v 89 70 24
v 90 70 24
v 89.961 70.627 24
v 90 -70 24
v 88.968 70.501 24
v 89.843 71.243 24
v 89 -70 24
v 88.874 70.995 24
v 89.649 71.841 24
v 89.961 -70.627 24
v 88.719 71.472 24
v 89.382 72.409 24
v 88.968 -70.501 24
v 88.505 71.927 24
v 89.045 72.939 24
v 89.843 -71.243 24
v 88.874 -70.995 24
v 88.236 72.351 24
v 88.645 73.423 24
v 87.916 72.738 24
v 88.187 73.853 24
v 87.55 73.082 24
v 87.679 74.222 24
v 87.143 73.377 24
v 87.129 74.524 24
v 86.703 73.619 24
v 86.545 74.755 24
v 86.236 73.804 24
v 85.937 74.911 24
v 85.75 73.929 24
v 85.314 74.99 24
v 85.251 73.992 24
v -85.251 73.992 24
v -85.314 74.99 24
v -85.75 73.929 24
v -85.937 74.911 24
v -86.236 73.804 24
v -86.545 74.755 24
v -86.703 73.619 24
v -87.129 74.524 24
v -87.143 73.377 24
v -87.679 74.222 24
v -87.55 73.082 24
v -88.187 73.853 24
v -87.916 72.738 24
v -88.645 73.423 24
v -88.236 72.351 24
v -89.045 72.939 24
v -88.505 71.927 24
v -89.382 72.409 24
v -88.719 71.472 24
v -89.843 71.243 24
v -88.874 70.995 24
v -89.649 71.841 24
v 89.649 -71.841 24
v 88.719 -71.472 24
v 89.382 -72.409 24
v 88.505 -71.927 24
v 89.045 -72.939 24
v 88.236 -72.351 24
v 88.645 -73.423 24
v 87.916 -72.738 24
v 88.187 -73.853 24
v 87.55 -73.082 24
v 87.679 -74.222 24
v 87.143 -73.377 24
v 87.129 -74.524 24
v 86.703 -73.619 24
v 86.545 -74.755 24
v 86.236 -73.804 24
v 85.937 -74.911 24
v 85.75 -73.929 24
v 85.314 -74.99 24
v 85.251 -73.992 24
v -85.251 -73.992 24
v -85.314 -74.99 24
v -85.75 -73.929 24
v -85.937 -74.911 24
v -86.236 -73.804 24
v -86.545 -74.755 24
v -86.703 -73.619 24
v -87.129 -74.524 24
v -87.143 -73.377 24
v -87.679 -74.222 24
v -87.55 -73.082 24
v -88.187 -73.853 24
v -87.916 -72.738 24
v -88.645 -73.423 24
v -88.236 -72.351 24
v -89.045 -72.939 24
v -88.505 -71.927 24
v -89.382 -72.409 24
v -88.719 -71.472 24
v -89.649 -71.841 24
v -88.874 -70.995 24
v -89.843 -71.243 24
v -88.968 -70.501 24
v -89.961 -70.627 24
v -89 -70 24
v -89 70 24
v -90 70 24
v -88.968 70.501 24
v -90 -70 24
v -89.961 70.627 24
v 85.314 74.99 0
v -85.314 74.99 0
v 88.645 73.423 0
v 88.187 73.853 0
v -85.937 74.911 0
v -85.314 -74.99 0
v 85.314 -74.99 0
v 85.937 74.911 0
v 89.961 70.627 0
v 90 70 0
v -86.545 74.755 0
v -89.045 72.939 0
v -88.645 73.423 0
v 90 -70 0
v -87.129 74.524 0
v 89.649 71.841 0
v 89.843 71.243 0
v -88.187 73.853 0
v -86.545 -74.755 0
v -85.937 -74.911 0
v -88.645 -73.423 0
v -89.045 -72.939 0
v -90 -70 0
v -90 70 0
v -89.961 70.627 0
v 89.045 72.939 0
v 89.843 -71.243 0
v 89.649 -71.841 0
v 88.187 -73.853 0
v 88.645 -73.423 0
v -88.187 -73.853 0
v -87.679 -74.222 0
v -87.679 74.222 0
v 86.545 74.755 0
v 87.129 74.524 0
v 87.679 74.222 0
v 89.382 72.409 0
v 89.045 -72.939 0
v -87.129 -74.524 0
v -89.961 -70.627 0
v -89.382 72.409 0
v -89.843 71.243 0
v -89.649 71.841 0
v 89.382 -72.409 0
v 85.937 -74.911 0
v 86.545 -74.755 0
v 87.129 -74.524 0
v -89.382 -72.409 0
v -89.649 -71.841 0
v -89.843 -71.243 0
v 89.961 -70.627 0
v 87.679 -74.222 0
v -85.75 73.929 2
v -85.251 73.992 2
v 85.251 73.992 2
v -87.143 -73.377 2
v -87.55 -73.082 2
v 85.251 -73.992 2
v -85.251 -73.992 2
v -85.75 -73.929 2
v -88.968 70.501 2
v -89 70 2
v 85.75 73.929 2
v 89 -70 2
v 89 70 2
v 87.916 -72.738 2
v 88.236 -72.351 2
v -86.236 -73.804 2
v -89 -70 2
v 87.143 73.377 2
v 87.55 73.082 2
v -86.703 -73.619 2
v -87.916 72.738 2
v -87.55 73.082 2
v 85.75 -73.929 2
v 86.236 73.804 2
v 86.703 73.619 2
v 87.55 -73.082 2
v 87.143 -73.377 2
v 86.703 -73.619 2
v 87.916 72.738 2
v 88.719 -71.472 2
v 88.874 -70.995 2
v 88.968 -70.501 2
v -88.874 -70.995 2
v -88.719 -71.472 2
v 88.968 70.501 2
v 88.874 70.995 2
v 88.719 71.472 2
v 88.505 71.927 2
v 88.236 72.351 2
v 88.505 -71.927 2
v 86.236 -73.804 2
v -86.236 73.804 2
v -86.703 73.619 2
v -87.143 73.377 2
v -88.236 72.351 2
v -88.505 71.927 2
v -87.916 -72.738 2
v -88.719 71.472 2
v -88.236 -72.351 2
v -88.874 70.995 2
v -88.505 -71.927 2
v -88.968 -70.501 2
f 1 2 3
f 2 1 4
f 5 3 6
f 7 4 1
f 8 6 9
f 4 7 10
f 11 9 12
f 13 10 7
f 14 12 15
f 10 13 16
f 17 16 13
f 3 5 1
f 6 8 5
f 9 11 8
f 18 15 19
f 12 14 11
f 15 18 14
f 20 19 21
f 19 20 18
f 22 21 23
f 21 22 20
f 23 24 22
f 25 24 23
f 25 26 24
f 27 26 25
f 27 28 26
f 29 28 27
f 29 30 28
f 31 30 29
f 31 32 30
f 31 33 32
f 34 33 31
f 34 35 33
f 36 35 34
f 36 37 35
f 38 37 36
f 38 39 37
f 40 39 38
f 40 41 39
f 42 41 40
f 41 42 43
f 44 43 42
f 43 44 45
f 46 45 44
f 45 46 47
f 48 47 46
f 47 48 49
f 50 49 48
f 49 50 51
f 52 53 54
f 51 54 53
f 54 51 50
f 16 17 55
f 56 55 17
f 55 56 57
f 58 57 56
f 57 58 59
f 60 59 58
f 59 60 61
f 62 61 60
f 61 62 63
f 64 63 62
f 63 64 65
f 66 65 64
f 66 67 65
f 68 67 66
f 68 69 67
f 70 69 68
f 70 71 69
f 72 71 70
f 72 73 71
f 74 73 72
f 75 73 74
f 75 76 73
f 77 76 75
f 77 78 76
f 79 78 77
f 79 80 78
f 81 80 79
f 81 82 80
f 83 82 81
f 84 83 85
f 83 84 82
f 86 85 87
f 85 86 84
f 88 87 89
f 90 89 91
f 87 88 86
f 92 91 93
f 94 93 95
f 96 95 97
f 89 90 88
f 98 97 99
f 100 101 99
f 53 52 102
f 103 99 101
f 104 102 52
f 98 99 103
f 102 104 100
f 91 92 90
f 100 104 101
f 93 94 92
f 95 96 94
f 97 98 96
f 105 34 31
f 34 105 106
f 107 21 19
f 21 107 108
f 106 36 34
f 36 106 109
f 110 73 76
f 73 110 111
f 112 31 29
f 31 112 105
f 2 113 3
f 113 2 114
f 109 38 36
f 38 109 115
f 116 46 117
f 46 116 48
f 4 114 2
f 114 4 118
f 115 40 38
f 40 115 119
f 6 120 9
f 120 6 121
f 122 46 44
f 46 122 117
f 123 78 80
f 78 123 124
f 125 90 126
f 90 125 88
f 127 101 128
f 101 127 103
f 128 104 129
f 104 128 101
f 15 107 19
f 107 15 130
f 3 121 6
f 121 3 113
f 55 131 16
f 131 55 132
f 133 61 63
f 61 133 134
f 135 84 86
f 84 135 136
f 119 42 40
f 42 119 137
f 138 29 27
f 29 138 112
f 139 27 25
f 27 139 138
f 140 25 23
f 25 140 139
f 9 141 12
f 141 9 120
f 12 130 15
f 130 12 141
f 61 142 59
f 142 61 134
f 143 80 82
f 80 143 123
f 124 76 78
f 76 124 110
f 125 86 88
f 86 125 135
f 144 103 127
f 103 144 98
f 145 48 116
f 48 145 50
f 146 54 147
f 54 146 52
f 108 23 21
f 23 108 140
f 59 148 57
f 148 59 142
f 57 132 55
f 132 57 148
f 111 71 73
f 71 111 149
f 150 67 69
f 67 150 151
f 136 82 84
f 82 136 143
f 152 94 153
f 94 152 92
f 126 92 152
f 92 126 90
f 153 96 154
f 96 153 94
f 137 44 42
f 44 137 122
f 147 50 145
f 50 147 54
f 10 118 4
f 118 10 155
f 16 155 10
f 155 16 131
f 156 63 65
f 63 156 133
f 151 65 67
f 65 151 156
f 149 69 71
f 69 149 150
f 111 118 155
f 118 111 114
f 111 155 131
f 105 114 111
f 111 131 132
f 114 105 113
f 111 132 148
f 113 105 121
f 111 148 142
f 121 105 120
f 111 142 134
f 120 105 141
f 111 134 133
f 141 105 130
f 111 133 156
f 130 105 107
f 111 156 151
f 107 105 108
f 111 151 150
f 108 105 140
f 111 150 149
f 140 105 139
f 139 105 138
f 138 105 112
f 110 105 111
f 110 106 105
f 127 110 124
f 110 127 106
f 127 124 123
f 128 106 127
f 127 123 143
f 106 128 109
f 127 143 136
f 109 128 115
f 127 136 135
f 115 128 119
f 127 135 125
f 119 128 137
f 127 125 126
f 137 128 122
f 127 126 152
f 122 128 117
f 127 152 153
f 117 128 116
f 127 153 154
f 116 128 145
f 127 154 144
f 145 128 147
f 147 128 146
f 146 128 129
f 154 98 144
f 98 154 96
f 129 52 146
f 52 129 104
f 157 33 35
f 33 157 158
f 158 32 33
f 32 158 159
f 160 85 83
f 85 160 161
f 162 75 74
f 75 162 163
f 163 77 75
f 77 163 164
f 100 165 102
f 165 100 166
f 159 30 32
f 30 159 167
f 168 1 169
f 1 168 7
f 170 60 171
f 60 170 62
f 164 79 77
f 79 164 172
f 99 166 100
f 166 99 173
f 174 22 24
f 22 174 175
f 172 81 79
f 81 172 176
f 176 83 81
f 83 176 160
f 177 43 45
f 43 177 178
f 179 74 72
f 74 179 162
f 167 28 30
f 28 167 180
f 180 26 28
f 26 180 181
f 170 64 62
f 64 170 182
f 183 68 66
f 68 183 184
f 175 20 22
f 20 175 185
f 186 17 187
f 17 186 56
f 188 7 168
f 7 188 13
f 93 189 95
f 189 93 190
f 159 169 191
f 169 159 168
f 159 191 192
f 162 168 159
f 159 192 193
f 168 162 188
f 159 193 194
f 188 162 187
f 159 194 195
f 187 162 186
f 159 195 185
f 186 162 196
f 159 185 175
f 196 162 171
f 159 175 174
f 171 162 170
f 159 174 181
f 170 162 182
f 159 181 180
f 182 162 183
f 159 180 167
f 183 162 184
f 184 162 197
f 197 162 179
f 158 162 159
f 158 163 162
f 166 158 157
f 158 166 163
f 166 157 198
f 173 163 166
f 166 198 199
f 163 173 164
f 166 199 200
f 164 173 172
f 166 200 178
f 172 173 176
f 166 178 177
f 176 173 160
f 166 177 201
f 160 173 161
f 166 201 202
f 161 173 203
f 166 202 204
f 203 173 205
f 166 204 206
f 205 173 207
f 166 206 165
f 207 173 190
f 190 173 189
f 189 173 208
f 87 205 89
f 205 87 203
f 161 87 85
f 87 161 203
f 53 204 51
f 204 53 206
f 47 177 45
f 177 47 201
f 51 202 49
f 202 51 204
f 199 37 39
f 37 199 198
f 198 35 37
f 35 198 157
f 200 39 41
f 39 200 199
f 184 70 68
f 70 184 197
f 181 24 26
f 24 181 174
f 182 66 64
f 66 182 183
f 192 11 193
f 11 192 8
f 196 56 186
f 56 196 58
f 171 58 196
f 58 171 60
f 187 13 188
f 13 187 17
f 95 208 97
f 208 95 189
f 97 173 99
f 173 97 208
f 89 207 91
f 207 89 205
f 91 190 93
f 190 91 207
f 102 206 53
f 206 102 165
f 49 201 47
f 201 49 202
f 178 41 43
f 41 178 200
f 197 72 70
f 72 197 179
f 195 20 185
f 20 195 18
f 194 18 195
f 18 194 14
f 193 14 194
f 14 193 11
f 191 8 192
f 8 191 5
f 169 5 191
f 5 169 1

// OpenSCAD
$fn = 50;


difference() {
	union() {
		hull() {
			translate(v = [-85.0000000000, 70.0000000000, 0]) {
				cylinder(h = 24, r = 5);
			}
			translate(v = [85.0000000000, 70.0000000000, 0]) {
				cylinder(h = 24, r = 5);
			}
			translate(v = [-85.0000000000, -70.0000000000, 0]) {
				cylinder(h = 24, r = 5);
			}
			translate(v = [85.0000000000, -70.0000000000, 0]) {
				cylinder(h = 24, r = 5);
			}
		}
	}
	union() {
		translate(v = [0, 0, 2]) {
			hull() {
				translate(v = [-85.0000000000, 70.0000000000, 0]) {
					cylinder(h = 22, r = 4);
				}
				translate(v = [85.0000000000, 70.0000000000, 0]) {
					cylinder(h = 22, r = 4);
				}
				translate(v = [-85.0000000000, -70.0000000000, 0]) {
					cylinder(h = 22, r = 4);
				}
				translate(v = [85.0000000000, -70.0000000000, 0]) {
					cylinder(h = 22, r = 4);
				}
			}
		}
	}
}
